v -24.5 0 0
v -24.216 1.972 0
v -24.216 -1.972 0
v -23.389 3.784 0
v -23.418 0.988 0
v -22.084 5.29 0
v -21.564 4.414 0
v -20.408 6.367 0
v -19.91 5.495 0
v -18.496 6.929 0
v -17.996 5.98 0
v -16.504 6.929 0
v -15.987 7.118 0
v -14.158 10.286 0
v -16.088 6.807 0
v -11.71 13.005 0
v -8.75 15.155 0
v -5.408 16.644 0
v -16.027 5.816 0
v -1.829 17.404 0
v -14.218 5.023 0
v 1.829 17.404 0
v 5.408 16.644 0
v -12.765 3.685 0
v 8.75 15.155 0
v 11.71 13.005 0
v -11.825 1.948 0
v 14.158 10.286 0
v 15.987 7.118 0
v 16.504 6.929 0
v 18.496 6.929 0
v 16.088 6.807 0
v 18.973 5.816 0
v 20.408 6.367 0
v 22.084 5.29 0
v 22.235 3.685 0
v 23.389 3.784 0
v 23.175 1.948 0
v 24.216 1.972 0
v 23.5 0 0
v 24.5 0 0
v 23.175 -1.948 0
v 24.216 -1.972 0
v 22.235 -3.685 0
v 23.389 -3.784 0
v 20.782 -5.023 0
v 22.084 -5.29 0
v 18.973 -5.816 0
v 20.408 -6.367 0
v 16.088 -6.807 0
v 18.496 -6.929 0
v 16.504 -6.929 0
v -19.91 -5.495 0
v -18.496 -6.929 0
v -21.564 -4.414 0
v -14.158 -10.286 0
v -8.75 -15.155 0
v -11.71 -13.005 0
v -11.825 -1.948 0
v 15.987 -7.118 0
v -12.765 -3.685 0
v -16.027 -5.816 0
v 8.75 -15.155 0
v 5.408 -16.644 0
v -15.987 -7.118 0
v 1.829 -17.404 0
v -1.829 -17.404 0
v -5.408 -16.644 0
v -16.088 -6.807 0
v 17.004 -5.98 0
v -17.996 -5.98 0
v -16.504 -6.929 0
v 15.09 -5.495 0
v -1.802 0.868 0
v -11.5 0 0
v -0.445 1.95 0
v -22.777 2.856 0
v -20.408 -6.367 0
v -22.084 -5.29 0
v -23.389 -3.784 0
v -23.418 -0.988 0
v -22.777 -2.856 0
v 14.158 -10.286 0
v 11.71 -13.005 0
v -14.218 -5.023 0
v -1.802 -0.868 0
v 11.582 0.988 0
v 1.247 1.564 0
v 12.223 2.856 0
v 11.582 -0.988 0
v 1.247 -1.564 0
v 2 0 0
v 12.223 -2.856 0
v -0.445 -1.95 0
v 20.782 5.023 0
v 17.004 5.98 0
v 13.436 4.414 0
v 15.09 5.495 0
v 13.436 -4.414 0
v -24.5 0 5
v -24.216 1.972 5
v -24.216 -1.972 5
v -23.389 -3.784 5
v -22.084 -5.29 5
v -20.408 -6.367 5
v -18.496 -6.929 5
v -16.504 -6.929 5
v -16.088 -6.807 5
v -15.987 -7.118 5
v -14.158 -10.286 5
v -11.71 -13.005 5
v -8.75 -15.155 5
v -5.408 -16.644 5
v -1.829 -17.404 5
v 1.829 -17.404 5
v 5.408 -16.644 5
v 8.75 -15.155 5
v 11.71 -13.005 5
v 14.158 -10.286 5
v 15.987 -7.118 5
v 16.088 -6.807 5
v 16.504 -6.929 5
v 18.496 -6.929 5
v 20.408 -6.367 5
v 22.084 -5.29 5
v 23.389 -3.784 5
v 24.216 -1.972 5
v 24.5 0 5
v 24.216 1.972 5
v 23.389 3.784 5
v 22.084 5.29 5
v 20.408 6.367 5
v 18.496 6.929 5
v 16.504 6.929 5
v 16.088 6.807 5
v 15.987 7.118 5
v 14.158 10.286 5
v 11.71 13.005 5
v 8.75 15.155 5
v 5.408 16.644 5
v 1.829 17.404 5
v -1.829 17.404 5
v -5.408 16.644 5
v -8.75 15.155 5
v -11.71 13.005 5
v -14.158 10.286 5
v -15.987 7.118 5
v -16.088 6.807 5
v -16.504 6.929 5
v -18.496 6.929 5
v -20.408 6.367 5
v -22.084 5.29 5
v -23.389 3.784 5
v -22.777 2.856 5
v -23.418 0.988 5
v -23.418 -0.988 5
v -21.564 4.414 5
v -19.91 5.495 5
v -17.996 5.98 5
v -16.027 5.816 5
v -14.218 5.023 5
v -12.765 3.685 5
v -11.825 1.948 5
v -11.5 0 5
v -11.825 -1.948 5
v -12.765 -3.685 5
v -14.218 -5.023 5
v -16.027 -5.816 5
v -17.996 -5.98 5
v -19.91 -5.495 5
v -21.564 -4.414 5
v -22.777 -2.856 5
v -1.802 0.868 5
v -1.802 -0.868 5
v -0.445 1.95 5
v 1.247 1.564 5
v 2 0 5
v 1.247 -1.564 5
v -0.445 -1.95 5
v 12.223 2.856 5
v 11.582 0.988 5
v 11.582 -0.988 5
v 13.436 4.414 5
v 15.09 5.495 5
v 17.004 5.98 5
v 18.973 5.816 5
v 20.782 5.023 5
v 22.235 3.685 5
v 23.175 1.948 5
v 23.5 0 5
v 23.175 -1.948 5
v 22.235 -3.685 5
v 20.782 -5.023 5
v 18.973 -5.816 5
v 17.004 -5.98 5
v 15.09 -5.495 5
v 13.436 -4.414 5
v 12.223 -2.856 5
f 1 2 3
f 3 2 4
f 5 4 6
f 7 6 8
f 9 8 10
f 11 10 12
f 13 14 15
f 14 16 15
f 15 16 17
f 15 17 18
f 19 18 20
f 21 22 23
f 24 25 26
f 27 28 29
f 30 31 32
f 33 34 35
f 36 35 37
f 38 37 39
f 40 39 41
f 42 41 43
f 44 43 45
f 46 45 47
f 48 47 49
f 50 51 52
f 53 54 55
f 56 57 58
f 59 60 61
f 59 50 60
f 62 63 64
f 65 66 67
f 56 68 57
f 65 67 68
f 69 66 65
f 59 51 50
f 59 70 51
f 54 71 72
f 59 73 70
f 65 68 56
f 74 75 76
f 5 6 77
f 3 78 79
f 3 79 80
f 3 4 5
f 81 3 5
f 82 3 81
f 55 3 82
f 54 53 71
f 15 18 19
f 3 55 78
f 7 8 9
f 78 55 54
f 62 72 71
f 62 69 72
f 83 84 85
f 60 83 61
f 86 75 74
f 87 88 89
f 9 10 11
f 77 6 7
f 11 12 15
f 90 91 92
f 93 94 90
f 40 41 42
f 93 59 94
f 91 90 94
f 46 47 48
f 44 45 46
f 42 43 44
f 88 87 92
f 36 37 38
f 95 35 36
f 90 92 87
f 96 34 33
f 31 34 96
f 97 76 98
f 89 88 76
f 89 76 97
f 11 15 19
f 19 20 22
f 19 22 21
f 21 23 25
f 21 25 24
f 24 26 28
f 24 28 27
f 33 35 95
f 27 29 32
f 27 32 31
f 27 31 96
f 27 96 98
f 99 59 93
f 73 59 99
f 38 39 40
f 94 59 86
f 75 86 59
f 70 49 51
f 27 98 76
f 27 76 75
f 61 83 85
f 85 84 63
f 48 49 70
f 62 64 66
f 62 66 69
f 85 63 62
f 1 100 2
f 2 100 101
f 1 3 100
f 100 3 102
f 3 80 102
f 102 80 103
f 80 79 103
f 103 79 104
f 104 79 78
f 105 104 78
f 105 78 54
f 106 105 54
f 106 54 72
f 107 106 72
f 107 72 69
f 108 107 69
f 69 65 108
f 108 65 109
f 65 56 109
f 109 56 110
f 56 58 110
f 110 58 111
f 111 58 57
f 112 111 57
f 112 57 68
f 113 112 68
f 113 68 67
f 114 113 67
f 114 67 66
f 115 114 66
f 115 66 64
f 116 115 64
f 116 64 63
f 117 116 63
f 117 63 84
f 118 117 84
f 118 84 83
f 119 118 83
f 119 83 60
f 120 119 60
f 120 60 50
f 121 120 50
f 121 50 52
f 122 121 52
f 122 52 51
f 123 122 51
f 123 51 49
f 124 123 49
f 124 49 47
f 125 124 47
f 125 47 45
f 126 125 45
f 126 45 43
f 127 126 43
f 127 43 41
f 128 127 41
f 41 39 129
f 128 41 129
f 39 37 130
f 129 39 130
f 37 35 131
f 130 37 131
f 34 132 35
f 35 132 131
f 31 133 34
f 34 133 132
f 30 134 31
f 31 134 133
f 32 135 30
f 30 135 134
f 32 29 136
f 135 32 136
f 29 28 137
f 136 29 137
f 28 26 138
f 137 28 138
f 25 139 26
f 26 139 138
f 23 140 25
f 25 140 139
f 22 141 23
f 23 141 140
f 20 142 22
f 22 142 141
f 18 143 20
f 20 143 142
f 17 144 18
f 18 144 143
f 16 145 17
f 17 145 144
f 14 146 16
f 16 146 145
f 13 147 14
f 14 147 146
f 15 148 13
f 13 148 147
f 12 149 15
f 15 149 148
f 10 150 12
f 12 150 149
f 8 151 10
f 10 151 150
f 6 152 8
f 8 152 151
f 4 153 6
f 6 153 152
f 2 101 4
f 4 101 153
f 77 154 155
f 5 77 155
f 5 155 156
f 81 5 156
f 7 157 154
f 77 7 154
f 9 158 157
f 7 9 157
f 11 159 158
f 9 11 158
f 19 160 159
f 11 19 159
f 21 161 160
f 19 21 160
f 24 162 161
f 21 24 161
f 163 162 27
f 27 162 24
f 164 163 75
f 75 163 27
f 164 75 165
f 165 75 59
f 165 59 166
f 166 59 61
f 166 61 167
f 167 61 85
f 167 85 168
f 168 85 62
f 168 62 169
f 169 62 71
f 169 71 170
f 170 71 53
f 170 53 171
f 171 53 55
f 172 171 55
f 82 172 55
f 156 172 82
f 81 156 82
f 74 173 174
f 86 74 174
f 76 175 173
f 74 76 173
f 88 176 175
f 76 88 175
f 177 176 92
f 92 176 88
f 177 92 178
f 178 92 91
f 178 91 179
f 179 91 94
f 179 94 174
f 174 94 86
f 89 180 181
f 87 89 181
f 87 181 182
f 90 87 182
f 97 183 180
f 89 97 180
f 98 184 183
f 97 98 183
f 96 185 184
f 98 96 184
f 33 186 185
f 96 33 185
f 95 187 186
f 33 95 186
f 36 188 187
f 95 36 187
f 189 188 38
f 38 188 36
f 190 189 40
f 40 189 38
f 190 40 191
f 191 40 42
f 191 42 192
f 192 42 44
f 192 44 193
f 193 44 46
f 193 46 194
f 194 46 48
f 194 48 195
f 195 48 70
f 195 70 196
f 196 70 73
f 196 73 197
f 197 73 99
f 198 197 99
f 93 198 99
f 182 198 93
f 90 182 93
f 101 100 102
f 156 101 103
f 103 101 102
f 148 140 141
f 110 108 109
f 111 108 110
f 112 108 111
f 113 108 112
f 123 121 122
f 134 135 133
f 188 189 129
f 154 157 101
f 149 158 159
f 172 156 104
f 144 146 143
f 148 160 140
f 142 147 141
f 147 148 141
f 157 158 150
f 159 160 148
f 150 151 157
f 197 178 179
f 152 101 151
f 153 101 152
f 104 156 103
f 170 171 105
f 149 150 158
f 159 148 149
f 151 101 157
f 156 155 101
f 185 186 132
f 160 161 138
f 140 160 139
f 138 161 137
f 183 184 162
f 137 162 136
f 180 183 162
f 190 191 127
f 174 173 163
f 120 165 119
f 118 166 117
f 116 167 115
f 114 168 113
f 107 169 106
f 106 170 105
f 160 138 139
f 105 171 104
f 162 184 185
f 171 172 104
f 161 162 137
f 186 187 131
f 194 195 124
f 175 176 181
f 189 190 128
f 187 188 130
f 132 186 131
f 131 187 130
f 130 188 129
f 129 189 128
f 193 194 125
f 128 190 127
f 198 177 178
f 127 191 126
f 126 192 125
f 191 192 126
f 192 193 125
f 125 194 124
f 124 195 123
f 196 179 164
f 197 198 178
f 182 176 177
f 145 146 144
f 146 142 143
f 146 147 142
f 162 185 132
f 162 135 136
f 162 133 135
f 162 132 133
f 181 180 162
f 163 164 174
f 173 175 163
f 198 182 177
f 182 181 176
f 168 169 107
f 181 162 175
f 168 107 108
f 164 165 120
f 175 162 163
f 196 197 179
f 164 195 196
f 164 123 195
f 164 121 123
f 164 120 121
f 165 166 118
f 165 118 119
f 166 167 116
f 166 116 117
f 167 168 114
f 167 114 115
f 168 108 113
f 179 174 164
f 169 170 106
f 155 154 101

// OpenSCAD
difference(){
union(){
cylinder(r=35/2,h=5);
translate([35/2,0,0])cylinder(r=14/2,h=5);
translate([-35/2,0,0])cylinder(r=14/2,h=5);
}
translate([0,0,-1])cylinder(r=4/2,h=7);
translate([35/2,0,-1])cylinder(r=12/2,h=7);
translate([-35/2,0,-1])cylinder(r=12/2,h=7);
}
